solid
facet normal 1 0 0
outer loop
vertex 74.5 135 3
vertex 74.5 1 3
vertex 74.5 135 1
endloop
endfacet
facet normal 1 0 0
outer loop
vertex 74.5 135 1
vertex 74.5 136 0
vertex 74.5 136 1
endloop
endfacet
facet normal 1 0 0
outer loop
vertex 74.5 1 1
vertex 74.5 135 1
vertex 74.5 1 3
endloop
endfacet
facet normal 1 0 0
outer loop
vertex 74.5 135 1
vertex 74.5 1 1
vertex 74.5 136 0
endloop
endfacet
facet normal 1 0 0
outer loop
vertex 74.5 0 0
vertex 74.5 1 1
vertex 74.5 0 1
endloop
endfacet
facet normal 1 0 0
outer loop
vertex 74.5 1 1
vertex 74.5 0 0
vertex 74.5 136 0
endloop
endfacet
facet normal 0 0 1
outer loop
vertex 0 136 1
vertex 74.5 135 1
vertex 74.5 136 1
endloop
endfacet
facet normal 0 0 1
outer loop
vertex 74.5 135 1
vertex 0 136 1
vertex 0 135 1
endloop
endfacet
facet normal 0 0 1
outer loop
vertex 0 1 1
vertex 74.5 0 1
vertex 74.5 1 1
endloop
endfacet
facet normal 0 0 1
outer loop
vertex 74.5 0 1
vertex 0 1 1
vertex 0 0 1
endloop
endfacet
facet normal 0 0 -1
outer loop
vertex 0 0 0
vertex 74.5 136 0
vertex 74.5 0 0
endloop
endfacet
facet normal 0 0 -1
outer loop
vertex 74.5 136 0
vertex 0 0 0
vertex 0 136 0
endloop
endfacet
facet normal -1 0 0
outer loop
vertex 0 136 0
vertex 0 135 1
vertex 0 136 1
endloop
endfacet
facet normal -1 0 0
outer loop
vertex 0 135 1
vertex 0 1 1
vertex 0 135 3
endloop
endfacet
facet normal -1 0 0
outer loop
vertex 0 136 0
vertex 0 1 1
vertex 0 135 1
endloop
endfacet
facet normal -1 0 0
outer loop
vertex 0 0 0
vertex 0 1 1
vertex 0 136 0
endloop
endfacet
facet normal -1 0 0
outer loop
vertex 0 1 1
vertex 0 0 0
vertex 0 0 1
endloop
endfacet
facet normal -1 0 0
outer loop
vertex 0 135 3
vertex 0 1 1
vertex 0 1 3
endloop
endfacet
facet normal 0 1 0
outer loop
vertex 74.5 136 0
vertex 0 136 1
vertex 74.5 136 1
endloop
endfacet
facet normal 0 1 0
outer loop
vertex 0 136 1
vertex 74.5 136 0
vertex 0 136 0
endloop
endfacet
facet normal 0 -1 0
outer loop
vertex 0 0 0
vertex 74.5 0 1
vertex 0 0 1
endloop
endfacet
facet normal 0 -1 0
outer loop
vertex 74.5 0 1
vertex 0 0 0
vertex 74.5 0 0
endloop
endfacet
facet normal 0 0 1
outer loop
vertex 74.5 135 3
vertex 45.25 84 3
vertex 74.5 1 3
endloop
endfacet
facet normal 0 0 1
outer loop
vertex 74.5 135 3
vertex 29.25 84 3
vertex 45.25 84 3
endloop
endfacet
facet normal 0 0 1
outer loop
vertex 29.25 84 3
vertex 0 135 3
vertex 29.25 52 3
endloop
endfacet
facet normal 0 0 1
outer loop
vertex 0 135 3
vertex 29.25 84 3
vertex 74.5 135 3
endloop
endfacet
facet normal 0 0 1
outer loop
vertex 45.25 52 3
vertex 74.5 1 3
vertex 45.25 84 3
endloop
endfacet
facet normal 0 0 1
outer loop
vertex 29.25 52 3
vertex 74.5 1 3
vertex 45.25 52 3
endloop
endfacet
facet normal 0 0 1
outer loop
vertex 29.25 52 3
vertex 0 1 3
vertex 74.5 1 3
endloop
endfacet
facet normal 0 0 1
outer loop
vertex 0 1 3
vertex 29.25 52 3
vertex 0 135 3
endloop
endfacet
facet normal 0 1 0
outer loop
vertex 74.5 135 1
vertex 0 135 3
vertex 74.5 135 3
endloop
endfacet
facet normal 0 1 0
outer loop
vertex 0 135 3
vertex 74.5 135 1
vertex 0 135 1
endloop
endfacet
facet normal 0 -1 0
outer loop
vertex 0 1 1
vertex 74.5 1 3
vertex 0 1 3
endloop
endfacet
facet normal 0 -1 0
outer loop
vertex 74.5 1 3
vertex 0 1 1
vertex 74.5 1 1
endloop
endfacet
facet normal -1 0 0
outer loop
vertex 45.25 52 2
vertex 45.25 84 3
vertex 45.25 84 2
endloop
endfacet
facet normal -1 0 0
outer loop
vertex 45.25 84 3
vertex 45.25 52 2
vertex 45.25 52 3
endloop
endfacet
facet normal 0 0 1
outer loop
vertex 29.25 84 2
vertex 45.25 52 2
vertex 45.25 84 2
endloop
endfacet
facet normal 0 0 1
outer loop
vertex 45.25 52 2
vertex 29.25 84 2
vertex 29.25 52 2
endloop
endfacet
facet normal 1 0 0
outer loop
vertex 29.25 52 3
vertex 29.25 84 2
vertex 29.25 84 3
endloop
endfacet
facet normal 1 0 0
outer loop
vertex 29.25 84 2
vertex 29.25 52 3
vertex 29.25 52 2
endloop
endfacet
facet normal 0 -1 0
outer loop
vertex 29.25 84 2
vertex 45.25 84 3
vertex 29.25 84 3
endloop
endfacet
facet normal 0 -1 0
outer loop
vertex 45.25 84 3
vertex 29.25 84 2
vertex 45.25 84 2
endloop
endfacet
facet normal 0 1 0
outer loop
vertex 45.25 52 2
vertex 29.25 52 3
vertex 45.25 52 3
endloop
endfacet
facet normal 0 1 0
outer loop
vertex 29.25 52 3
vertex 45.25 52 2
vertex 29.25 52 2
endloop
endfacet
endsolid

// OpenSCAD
DIM = [
	76.5, // Spielerinnenablage richtung
	138, // Links-Rechts
	29
];



difference(){

	union(){
		cube([ DIM.x-2 , DIM.y-2 , 1 ]);
		translate([ 0 , 1 , 1 ]) cube([ DIM.x-2 , DIM.y-4 , 2 ]);
	}
	
	// Symbol
	translate([ 0.5*(DIM.x-2) , 0.5*(DIM.y-2) , 2 ]) Symbol();
}

module Symbol () {
	
	translate([ 0 , 0 , 5 ]) cube([ 16 , 32 , 10 ],center=true);
	
}
